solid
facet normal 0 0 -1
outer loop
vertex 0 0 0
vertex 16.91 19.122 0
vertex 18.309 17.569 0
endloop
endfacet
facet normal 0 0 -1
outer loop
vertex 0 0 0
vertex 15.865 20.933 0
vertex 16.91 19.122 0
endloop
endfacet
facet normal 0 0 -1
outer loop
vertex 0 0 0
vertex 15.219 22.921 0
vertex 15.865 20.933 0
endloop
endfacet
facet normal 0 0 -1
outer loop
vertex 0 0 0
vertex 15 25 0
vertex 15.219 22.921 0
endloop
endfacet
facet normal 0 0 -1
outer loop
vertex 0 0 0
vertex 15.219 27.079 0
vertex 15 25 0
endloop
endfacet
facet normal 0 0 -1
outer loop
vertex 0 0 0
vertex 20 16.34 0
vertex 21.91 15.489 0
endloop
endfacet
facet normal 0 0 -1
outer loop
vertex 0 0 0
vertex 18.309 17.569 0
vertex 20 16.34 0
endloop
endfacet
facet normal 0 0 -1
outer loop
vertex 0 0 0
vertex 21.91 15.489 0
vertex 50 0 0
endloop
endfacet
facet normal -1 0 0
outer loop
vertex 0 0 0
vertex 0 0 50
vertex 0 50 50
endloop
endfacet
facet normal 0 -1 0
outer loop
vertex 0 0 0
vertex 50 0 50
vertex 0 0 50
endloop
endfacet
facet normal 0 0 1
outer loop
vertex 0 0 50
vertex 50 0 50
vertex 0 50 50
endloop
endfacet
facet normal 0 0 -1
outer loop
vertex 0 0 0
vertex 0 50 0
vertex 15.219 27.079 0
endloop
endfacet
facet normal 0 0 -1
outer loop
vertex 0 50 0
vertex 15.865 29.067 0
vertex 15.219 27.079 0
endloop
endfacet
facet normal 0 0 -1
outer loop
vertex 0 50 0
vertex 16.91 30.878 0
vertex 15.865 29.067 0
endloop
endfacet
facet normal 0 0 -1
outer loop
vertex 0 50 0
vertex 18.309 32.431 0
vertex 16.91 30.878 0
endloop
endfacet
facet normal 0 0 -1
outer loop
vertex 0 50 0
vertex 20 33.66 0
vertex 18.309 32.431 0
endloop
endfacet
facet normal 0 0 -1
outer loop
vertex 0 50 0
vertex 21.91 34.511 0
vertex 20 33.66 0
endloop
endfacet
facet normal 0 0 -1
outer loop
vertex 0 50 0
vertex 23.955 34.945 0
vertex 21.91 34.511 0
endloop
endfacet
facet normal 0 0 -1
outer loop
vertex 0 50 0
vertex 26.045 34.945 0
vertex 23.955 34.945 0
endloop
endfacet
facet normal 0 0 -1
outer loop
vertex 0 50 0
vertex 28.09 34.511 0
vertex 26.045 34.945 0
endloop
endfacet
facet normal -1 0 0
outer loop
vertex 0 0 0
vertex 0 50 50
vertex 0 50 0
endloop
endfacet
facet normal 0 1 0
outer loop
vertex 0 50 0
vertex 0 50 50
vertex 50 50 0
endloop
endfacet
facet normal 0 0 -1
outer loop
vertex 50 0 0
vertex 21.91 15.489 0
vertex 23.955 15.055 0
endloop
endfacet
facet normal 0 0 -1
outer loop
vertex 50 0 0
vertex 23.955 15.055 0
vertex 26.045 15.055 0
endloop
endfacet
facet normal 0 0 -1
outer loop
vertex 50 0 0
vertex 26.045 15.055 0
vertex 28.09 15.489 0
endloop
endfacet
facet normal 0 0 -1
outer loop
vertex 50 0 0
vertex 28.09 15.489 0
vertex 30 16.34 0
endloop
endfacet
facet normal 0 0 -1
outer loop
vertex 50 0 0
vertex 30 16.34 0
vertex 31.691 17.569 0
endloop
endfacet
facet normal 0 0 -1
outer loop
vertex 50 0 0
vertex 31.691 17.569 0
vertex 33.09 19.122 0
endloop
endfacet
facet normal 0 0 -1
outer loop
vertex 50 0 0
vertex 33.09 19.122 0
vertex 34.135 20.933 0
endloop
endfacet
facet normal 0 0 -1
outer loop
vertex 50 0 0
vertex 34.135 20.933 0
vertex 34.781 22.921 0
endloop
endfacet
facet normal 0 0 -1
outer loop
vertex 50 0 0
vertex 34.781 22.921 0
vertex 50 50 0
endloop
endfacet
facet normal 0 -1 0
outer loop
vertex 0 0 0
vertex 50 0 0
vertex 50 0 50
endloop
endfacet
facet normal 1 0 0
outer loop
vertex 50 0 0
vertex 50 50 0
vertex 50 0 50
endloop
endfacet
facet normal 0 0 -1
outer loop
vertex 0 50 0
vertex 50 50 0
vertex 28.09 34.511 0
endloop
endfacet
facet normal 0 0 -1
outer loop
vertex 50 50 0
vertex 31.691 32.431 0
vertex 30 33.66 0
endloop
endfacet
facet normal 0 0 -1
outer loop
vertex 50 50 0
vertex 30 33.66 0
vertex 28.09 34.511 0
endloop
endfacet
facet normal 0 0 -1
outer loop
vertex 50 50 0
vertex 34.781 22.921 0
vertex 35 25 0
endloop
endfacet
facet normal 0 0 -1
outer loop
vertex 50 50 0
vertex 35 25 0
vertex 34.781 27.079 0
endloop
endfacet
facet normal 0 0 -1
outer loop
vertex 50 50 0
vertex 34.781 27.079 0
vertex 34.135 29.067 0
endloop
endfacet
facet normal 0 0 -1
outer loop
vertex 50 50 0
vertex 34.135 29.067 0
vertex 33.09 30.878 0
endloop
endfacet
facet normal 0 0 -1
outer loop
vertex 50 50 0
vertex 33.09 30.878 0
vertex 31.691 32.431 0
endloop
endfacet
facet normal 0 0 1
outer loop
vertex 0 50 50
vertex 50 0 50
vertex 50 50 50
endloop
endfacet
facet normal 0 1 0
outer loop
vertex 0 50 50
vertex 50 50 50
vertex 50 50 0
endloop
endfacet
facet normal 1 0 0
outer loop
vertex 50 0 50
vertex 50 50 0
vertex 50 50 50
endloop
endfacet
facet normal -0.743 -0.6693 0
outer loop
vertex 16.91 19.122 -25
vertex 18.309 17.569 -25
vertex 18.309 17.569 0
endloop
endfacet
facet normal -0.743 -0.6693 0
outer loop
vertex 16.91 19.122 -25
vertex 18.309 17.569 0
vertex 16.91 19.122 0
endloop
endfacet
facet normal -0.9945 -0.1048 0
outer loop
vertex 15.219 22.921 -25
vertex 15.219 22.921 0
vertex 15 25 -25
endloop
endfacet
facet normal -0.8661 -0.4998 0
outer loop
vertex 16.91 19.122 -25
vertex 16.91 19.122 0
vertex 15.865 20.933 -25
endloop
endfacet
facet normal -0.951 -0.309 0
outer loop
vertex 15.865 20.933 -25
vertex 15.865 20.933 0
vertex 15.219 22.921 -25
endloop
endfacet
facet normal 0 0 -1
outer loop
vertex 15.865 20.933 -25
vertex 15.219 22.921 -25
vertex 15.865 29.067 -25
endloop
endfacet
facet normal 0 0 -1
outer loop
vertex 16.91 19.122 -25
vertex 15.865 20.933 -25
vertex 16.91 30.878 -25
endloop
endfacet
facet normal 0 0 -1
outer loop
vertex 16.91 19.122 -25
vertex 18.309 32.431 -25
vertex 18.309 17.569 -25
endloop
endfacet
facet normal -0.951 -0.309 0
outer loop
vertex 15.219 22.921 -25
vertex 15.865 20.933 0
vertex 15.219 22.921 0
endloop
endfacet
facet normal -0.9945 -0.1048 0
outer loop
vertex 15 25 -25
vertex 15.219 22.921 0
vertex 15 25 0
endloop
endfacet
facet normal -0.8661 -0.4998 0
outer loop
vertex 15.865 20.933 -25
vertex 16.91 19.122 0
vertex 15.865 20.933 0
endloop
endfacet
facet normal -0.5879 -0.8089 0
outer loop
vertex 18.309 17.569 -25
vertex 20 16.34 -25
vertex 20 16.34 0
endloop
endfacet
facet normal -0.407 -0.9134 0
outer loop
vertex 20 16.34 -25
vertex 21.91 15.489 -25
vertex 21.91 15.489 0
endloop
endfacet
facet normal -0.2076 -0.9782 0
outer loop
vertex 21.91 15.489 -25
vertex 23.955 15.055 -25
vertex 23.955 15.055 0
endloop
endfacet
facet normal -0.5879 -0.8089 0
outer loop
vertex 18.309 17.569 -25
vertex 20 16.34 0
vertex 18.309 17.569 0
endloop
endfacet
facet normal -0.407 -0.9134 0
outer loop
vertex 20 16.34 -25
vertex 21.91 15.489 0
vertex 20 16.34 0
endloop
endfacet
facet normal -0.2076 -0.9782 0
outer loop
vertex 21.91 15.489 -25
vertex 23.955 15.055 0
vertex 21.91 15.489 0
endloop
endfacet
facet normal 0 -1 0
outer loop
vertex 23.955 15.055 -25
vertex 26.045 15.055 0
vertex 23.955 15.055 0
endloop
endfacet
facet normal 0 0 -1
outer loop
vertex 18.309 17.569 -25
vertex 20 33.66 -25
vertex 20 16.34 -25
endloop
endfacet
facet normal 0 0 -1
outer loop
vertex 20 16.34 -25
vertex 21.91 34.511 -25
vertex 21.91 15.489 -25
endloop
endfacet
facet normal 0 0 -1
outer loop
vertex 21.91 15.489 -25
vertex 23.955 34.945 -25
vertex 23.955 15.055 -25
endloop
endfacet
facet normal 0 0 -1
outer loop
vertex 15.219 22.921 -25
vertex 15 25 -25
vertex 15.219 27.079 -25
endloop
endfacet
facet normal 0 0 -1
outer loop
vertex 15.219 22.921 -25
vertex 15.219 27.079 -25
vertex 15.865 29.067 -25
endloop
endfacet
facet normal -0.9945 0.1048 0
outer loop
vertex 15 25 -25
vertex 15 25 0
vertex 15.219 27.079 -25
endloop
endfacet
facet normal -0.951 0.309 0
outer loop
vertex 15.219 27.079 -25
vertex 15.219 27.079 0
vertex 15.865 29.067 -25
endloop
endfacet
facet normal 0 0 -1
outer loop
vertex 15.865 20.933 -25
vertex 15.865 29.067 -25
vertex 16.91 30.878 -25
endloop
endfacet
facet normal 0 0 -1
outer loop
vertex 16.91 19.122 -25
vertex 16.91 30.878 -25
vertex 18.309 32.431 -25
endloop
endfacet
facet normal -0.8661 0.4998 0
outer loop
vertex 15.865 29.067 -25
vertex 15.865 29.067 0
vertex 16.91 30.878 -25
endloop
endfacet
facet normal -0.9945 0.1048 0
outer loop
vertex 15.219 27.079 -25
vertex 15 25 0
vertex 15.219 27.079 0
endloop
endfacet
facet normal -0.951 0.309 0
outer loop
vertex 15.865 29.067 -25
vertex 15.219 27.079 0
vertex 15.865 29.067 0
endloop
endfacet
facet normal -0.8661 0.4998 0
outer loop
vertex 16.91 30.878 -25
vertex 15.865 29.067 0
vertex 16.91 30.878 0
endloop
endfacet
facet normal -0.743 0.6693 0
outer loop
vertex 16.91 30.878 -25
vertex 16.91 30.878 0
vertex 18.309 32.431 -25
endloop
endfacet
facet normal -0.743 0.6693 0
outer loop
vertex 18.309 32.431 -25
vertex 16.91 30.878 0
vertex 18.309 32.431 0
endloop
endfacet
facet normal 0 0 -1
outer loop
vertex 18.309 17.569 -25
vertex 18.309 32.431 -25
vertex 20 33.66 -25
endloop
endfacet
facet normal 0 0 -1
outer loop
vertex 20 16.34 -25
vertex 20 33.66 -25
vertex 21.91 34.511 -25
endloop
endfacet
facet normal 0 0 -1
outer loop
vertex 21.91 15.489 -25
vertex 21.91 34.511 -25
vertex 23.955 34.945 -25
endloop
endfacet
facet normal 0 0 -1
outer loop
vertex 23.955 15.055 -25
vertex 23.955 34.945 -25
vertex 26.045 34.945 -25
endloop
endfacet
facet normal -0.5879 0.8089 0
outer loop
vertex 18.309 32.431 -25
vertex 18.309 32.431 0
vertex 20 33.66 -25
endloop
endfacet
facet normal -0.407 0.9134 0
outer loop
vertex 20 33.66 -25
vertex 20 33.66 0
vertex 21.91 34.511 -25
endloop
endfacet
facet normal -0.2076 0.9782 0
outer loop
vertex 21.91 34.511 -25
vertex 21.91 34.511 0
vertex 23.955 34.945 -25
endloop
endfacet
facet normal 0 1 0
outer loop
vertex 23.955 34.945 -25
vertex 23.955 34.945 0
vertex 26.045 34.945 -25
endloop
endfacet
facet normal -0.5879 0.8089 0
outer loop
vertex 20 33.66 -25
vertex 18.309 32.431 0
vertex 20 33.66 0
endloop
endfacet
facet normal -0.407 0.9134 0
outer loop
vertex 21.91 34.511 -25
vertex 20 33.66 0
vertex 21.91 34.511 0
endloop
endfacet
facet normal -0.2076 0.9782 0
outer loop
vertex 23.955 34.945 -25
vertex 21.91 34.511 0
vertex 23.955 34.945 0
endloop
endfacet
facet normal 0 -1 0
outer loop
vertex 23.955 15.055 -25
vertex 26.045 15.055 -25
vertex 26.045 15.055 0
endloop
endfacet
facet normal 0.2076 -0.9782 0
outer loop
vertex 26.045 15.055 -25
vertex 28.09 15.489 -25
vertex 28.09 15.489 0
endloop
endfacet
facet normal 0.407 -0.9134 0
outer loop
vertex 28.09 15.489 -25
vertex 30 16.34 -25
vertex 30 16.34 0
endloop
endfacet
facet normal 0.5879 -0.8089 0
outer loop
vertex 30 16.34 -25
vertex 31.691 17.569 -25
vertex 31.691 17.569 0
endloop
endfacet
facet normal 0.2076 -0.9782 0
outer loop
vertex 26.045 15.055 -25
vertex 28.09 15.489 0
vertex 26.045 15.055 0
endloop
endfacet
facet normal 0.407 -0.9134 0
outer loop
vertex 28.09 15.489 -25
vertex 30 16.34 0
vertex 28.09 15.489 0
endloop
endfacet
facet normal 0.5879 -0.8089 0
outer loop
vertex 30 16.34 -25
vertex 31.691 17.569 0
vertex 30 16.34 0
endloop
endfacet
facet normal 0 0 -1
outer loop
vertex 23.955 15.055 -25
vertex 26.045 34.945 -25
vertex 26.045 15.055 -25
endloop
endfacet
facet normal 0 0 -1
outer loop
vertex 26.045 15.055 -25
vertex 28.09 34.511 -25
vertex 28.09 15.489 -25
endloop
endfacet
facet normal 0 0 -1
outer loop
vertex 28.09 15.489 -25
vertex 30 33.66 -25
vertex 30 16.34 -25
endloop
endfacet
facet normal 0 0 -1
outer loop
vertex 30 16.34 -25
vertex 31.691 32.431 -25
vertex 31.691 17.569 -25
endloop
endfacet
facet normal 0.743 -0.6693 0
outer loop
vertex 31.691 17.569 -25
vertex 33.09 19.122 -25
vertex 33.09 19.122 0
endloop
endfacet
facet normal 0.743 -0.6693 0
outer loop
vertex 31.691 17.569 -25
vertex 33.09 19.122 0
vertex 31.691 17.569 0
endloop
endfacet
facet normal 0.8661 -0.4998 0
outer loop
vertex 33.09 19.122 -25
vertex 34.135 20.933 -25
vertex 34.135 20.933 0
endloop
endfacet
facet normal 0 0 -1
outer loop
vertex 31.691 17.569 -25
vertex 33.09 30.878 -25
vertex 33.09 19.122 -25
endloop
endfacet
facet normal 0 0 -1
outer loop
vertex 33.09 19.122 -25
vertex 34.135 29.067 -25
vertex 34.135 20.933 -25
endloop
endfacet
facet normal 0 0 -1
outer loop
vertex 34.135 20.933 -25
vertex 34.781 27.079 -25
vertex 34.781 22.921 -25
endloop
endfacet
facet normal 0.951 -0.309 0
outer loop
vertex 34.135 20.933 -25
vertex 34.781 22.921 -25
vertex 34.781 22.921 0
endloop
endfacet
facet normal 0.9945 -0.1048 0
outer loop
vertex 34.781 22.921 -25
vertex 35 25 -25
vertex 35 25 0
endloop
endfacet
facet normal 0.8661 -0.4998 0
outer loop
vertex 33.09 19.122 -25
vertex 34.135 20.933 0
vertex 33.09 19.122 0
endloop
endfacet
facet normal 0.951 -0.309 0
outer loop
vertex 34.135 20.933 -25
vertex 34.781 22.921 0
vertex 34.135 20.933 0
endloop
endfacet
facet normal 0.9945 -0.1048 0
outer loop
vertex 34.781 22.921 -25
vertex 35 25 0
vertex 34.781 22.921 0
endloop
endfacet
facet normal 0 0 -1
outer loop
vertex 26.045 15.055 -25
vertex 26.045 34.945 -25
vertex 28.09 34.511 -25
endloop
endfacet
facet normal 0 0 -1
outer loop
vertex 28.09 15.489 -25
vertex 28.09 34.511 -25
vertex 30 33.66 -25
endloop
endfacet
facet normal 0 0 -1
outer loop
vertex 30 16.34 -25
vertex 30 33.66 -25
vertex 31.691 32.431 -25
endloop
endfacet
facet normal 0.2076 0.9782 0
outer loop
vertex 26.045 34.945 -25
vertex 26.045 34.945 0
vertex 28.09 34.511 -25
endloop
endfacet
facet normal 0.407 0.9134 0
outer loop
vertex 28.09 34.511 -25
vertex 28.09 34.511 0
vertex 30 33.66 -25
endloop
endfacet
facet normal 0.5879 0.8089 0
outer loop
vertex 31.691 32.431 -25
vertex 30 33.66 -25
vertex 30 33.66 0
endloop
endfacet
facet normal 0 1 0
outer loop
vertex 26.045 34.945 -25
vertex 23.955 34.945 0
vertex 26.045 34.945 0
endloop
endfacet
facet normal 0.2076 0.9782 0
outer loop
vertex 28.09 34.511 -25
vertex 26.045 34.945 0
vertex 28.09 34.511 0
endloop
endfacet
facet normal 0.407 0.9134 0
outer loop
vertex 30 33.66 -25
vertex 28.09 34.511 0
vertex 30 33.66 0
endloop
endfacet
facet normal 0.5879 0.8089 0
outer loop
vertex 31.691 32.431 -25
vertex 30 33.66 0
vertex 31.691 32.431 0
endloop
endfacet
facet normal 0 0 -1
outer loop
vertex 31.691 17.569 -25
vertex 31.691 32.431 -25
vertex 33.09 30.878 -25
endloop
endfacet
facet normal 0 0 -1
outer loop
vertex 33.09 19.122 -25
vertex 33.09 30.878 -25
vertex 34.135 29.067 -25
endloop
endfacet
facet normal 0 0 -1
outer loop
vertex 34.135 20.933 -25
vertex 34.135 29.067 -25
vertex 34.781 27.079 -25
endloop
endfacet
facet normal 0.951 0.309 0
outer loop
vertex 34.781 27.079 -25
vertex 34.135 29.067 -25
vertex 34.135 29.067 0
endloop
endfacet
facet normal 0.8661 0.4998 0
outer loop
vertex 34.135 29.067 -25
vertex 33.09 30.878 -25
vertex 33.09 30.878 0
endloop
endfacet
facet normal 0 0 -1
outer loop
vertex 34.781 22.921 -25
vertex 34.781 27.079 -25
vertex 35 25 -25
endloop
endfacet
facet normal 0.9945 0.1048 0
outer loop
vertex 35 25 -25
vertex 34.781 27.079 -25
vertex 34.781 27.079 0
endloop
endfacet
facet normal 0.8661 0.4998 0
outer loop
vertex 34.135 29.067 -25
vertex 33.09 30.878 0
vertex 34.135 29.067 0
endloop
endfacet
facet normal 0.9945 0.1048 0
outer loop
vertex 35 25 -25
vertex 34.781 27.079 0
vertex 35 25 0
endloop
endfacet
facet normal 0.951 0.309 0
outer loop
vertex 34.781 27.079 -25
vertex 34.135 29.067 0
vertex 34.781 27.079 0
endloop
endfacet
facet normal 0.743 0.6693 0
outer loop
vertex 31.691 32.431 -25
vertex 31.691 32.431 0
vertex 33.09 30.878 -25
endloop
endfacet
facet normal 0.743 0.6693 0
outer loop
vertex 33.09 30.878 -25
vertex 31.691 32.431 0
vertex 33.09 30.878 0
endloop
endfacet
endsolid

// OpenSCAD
cube([50, 50, 50]);

translate([25, 25, -25])
cylinder(h=50, r=10);
